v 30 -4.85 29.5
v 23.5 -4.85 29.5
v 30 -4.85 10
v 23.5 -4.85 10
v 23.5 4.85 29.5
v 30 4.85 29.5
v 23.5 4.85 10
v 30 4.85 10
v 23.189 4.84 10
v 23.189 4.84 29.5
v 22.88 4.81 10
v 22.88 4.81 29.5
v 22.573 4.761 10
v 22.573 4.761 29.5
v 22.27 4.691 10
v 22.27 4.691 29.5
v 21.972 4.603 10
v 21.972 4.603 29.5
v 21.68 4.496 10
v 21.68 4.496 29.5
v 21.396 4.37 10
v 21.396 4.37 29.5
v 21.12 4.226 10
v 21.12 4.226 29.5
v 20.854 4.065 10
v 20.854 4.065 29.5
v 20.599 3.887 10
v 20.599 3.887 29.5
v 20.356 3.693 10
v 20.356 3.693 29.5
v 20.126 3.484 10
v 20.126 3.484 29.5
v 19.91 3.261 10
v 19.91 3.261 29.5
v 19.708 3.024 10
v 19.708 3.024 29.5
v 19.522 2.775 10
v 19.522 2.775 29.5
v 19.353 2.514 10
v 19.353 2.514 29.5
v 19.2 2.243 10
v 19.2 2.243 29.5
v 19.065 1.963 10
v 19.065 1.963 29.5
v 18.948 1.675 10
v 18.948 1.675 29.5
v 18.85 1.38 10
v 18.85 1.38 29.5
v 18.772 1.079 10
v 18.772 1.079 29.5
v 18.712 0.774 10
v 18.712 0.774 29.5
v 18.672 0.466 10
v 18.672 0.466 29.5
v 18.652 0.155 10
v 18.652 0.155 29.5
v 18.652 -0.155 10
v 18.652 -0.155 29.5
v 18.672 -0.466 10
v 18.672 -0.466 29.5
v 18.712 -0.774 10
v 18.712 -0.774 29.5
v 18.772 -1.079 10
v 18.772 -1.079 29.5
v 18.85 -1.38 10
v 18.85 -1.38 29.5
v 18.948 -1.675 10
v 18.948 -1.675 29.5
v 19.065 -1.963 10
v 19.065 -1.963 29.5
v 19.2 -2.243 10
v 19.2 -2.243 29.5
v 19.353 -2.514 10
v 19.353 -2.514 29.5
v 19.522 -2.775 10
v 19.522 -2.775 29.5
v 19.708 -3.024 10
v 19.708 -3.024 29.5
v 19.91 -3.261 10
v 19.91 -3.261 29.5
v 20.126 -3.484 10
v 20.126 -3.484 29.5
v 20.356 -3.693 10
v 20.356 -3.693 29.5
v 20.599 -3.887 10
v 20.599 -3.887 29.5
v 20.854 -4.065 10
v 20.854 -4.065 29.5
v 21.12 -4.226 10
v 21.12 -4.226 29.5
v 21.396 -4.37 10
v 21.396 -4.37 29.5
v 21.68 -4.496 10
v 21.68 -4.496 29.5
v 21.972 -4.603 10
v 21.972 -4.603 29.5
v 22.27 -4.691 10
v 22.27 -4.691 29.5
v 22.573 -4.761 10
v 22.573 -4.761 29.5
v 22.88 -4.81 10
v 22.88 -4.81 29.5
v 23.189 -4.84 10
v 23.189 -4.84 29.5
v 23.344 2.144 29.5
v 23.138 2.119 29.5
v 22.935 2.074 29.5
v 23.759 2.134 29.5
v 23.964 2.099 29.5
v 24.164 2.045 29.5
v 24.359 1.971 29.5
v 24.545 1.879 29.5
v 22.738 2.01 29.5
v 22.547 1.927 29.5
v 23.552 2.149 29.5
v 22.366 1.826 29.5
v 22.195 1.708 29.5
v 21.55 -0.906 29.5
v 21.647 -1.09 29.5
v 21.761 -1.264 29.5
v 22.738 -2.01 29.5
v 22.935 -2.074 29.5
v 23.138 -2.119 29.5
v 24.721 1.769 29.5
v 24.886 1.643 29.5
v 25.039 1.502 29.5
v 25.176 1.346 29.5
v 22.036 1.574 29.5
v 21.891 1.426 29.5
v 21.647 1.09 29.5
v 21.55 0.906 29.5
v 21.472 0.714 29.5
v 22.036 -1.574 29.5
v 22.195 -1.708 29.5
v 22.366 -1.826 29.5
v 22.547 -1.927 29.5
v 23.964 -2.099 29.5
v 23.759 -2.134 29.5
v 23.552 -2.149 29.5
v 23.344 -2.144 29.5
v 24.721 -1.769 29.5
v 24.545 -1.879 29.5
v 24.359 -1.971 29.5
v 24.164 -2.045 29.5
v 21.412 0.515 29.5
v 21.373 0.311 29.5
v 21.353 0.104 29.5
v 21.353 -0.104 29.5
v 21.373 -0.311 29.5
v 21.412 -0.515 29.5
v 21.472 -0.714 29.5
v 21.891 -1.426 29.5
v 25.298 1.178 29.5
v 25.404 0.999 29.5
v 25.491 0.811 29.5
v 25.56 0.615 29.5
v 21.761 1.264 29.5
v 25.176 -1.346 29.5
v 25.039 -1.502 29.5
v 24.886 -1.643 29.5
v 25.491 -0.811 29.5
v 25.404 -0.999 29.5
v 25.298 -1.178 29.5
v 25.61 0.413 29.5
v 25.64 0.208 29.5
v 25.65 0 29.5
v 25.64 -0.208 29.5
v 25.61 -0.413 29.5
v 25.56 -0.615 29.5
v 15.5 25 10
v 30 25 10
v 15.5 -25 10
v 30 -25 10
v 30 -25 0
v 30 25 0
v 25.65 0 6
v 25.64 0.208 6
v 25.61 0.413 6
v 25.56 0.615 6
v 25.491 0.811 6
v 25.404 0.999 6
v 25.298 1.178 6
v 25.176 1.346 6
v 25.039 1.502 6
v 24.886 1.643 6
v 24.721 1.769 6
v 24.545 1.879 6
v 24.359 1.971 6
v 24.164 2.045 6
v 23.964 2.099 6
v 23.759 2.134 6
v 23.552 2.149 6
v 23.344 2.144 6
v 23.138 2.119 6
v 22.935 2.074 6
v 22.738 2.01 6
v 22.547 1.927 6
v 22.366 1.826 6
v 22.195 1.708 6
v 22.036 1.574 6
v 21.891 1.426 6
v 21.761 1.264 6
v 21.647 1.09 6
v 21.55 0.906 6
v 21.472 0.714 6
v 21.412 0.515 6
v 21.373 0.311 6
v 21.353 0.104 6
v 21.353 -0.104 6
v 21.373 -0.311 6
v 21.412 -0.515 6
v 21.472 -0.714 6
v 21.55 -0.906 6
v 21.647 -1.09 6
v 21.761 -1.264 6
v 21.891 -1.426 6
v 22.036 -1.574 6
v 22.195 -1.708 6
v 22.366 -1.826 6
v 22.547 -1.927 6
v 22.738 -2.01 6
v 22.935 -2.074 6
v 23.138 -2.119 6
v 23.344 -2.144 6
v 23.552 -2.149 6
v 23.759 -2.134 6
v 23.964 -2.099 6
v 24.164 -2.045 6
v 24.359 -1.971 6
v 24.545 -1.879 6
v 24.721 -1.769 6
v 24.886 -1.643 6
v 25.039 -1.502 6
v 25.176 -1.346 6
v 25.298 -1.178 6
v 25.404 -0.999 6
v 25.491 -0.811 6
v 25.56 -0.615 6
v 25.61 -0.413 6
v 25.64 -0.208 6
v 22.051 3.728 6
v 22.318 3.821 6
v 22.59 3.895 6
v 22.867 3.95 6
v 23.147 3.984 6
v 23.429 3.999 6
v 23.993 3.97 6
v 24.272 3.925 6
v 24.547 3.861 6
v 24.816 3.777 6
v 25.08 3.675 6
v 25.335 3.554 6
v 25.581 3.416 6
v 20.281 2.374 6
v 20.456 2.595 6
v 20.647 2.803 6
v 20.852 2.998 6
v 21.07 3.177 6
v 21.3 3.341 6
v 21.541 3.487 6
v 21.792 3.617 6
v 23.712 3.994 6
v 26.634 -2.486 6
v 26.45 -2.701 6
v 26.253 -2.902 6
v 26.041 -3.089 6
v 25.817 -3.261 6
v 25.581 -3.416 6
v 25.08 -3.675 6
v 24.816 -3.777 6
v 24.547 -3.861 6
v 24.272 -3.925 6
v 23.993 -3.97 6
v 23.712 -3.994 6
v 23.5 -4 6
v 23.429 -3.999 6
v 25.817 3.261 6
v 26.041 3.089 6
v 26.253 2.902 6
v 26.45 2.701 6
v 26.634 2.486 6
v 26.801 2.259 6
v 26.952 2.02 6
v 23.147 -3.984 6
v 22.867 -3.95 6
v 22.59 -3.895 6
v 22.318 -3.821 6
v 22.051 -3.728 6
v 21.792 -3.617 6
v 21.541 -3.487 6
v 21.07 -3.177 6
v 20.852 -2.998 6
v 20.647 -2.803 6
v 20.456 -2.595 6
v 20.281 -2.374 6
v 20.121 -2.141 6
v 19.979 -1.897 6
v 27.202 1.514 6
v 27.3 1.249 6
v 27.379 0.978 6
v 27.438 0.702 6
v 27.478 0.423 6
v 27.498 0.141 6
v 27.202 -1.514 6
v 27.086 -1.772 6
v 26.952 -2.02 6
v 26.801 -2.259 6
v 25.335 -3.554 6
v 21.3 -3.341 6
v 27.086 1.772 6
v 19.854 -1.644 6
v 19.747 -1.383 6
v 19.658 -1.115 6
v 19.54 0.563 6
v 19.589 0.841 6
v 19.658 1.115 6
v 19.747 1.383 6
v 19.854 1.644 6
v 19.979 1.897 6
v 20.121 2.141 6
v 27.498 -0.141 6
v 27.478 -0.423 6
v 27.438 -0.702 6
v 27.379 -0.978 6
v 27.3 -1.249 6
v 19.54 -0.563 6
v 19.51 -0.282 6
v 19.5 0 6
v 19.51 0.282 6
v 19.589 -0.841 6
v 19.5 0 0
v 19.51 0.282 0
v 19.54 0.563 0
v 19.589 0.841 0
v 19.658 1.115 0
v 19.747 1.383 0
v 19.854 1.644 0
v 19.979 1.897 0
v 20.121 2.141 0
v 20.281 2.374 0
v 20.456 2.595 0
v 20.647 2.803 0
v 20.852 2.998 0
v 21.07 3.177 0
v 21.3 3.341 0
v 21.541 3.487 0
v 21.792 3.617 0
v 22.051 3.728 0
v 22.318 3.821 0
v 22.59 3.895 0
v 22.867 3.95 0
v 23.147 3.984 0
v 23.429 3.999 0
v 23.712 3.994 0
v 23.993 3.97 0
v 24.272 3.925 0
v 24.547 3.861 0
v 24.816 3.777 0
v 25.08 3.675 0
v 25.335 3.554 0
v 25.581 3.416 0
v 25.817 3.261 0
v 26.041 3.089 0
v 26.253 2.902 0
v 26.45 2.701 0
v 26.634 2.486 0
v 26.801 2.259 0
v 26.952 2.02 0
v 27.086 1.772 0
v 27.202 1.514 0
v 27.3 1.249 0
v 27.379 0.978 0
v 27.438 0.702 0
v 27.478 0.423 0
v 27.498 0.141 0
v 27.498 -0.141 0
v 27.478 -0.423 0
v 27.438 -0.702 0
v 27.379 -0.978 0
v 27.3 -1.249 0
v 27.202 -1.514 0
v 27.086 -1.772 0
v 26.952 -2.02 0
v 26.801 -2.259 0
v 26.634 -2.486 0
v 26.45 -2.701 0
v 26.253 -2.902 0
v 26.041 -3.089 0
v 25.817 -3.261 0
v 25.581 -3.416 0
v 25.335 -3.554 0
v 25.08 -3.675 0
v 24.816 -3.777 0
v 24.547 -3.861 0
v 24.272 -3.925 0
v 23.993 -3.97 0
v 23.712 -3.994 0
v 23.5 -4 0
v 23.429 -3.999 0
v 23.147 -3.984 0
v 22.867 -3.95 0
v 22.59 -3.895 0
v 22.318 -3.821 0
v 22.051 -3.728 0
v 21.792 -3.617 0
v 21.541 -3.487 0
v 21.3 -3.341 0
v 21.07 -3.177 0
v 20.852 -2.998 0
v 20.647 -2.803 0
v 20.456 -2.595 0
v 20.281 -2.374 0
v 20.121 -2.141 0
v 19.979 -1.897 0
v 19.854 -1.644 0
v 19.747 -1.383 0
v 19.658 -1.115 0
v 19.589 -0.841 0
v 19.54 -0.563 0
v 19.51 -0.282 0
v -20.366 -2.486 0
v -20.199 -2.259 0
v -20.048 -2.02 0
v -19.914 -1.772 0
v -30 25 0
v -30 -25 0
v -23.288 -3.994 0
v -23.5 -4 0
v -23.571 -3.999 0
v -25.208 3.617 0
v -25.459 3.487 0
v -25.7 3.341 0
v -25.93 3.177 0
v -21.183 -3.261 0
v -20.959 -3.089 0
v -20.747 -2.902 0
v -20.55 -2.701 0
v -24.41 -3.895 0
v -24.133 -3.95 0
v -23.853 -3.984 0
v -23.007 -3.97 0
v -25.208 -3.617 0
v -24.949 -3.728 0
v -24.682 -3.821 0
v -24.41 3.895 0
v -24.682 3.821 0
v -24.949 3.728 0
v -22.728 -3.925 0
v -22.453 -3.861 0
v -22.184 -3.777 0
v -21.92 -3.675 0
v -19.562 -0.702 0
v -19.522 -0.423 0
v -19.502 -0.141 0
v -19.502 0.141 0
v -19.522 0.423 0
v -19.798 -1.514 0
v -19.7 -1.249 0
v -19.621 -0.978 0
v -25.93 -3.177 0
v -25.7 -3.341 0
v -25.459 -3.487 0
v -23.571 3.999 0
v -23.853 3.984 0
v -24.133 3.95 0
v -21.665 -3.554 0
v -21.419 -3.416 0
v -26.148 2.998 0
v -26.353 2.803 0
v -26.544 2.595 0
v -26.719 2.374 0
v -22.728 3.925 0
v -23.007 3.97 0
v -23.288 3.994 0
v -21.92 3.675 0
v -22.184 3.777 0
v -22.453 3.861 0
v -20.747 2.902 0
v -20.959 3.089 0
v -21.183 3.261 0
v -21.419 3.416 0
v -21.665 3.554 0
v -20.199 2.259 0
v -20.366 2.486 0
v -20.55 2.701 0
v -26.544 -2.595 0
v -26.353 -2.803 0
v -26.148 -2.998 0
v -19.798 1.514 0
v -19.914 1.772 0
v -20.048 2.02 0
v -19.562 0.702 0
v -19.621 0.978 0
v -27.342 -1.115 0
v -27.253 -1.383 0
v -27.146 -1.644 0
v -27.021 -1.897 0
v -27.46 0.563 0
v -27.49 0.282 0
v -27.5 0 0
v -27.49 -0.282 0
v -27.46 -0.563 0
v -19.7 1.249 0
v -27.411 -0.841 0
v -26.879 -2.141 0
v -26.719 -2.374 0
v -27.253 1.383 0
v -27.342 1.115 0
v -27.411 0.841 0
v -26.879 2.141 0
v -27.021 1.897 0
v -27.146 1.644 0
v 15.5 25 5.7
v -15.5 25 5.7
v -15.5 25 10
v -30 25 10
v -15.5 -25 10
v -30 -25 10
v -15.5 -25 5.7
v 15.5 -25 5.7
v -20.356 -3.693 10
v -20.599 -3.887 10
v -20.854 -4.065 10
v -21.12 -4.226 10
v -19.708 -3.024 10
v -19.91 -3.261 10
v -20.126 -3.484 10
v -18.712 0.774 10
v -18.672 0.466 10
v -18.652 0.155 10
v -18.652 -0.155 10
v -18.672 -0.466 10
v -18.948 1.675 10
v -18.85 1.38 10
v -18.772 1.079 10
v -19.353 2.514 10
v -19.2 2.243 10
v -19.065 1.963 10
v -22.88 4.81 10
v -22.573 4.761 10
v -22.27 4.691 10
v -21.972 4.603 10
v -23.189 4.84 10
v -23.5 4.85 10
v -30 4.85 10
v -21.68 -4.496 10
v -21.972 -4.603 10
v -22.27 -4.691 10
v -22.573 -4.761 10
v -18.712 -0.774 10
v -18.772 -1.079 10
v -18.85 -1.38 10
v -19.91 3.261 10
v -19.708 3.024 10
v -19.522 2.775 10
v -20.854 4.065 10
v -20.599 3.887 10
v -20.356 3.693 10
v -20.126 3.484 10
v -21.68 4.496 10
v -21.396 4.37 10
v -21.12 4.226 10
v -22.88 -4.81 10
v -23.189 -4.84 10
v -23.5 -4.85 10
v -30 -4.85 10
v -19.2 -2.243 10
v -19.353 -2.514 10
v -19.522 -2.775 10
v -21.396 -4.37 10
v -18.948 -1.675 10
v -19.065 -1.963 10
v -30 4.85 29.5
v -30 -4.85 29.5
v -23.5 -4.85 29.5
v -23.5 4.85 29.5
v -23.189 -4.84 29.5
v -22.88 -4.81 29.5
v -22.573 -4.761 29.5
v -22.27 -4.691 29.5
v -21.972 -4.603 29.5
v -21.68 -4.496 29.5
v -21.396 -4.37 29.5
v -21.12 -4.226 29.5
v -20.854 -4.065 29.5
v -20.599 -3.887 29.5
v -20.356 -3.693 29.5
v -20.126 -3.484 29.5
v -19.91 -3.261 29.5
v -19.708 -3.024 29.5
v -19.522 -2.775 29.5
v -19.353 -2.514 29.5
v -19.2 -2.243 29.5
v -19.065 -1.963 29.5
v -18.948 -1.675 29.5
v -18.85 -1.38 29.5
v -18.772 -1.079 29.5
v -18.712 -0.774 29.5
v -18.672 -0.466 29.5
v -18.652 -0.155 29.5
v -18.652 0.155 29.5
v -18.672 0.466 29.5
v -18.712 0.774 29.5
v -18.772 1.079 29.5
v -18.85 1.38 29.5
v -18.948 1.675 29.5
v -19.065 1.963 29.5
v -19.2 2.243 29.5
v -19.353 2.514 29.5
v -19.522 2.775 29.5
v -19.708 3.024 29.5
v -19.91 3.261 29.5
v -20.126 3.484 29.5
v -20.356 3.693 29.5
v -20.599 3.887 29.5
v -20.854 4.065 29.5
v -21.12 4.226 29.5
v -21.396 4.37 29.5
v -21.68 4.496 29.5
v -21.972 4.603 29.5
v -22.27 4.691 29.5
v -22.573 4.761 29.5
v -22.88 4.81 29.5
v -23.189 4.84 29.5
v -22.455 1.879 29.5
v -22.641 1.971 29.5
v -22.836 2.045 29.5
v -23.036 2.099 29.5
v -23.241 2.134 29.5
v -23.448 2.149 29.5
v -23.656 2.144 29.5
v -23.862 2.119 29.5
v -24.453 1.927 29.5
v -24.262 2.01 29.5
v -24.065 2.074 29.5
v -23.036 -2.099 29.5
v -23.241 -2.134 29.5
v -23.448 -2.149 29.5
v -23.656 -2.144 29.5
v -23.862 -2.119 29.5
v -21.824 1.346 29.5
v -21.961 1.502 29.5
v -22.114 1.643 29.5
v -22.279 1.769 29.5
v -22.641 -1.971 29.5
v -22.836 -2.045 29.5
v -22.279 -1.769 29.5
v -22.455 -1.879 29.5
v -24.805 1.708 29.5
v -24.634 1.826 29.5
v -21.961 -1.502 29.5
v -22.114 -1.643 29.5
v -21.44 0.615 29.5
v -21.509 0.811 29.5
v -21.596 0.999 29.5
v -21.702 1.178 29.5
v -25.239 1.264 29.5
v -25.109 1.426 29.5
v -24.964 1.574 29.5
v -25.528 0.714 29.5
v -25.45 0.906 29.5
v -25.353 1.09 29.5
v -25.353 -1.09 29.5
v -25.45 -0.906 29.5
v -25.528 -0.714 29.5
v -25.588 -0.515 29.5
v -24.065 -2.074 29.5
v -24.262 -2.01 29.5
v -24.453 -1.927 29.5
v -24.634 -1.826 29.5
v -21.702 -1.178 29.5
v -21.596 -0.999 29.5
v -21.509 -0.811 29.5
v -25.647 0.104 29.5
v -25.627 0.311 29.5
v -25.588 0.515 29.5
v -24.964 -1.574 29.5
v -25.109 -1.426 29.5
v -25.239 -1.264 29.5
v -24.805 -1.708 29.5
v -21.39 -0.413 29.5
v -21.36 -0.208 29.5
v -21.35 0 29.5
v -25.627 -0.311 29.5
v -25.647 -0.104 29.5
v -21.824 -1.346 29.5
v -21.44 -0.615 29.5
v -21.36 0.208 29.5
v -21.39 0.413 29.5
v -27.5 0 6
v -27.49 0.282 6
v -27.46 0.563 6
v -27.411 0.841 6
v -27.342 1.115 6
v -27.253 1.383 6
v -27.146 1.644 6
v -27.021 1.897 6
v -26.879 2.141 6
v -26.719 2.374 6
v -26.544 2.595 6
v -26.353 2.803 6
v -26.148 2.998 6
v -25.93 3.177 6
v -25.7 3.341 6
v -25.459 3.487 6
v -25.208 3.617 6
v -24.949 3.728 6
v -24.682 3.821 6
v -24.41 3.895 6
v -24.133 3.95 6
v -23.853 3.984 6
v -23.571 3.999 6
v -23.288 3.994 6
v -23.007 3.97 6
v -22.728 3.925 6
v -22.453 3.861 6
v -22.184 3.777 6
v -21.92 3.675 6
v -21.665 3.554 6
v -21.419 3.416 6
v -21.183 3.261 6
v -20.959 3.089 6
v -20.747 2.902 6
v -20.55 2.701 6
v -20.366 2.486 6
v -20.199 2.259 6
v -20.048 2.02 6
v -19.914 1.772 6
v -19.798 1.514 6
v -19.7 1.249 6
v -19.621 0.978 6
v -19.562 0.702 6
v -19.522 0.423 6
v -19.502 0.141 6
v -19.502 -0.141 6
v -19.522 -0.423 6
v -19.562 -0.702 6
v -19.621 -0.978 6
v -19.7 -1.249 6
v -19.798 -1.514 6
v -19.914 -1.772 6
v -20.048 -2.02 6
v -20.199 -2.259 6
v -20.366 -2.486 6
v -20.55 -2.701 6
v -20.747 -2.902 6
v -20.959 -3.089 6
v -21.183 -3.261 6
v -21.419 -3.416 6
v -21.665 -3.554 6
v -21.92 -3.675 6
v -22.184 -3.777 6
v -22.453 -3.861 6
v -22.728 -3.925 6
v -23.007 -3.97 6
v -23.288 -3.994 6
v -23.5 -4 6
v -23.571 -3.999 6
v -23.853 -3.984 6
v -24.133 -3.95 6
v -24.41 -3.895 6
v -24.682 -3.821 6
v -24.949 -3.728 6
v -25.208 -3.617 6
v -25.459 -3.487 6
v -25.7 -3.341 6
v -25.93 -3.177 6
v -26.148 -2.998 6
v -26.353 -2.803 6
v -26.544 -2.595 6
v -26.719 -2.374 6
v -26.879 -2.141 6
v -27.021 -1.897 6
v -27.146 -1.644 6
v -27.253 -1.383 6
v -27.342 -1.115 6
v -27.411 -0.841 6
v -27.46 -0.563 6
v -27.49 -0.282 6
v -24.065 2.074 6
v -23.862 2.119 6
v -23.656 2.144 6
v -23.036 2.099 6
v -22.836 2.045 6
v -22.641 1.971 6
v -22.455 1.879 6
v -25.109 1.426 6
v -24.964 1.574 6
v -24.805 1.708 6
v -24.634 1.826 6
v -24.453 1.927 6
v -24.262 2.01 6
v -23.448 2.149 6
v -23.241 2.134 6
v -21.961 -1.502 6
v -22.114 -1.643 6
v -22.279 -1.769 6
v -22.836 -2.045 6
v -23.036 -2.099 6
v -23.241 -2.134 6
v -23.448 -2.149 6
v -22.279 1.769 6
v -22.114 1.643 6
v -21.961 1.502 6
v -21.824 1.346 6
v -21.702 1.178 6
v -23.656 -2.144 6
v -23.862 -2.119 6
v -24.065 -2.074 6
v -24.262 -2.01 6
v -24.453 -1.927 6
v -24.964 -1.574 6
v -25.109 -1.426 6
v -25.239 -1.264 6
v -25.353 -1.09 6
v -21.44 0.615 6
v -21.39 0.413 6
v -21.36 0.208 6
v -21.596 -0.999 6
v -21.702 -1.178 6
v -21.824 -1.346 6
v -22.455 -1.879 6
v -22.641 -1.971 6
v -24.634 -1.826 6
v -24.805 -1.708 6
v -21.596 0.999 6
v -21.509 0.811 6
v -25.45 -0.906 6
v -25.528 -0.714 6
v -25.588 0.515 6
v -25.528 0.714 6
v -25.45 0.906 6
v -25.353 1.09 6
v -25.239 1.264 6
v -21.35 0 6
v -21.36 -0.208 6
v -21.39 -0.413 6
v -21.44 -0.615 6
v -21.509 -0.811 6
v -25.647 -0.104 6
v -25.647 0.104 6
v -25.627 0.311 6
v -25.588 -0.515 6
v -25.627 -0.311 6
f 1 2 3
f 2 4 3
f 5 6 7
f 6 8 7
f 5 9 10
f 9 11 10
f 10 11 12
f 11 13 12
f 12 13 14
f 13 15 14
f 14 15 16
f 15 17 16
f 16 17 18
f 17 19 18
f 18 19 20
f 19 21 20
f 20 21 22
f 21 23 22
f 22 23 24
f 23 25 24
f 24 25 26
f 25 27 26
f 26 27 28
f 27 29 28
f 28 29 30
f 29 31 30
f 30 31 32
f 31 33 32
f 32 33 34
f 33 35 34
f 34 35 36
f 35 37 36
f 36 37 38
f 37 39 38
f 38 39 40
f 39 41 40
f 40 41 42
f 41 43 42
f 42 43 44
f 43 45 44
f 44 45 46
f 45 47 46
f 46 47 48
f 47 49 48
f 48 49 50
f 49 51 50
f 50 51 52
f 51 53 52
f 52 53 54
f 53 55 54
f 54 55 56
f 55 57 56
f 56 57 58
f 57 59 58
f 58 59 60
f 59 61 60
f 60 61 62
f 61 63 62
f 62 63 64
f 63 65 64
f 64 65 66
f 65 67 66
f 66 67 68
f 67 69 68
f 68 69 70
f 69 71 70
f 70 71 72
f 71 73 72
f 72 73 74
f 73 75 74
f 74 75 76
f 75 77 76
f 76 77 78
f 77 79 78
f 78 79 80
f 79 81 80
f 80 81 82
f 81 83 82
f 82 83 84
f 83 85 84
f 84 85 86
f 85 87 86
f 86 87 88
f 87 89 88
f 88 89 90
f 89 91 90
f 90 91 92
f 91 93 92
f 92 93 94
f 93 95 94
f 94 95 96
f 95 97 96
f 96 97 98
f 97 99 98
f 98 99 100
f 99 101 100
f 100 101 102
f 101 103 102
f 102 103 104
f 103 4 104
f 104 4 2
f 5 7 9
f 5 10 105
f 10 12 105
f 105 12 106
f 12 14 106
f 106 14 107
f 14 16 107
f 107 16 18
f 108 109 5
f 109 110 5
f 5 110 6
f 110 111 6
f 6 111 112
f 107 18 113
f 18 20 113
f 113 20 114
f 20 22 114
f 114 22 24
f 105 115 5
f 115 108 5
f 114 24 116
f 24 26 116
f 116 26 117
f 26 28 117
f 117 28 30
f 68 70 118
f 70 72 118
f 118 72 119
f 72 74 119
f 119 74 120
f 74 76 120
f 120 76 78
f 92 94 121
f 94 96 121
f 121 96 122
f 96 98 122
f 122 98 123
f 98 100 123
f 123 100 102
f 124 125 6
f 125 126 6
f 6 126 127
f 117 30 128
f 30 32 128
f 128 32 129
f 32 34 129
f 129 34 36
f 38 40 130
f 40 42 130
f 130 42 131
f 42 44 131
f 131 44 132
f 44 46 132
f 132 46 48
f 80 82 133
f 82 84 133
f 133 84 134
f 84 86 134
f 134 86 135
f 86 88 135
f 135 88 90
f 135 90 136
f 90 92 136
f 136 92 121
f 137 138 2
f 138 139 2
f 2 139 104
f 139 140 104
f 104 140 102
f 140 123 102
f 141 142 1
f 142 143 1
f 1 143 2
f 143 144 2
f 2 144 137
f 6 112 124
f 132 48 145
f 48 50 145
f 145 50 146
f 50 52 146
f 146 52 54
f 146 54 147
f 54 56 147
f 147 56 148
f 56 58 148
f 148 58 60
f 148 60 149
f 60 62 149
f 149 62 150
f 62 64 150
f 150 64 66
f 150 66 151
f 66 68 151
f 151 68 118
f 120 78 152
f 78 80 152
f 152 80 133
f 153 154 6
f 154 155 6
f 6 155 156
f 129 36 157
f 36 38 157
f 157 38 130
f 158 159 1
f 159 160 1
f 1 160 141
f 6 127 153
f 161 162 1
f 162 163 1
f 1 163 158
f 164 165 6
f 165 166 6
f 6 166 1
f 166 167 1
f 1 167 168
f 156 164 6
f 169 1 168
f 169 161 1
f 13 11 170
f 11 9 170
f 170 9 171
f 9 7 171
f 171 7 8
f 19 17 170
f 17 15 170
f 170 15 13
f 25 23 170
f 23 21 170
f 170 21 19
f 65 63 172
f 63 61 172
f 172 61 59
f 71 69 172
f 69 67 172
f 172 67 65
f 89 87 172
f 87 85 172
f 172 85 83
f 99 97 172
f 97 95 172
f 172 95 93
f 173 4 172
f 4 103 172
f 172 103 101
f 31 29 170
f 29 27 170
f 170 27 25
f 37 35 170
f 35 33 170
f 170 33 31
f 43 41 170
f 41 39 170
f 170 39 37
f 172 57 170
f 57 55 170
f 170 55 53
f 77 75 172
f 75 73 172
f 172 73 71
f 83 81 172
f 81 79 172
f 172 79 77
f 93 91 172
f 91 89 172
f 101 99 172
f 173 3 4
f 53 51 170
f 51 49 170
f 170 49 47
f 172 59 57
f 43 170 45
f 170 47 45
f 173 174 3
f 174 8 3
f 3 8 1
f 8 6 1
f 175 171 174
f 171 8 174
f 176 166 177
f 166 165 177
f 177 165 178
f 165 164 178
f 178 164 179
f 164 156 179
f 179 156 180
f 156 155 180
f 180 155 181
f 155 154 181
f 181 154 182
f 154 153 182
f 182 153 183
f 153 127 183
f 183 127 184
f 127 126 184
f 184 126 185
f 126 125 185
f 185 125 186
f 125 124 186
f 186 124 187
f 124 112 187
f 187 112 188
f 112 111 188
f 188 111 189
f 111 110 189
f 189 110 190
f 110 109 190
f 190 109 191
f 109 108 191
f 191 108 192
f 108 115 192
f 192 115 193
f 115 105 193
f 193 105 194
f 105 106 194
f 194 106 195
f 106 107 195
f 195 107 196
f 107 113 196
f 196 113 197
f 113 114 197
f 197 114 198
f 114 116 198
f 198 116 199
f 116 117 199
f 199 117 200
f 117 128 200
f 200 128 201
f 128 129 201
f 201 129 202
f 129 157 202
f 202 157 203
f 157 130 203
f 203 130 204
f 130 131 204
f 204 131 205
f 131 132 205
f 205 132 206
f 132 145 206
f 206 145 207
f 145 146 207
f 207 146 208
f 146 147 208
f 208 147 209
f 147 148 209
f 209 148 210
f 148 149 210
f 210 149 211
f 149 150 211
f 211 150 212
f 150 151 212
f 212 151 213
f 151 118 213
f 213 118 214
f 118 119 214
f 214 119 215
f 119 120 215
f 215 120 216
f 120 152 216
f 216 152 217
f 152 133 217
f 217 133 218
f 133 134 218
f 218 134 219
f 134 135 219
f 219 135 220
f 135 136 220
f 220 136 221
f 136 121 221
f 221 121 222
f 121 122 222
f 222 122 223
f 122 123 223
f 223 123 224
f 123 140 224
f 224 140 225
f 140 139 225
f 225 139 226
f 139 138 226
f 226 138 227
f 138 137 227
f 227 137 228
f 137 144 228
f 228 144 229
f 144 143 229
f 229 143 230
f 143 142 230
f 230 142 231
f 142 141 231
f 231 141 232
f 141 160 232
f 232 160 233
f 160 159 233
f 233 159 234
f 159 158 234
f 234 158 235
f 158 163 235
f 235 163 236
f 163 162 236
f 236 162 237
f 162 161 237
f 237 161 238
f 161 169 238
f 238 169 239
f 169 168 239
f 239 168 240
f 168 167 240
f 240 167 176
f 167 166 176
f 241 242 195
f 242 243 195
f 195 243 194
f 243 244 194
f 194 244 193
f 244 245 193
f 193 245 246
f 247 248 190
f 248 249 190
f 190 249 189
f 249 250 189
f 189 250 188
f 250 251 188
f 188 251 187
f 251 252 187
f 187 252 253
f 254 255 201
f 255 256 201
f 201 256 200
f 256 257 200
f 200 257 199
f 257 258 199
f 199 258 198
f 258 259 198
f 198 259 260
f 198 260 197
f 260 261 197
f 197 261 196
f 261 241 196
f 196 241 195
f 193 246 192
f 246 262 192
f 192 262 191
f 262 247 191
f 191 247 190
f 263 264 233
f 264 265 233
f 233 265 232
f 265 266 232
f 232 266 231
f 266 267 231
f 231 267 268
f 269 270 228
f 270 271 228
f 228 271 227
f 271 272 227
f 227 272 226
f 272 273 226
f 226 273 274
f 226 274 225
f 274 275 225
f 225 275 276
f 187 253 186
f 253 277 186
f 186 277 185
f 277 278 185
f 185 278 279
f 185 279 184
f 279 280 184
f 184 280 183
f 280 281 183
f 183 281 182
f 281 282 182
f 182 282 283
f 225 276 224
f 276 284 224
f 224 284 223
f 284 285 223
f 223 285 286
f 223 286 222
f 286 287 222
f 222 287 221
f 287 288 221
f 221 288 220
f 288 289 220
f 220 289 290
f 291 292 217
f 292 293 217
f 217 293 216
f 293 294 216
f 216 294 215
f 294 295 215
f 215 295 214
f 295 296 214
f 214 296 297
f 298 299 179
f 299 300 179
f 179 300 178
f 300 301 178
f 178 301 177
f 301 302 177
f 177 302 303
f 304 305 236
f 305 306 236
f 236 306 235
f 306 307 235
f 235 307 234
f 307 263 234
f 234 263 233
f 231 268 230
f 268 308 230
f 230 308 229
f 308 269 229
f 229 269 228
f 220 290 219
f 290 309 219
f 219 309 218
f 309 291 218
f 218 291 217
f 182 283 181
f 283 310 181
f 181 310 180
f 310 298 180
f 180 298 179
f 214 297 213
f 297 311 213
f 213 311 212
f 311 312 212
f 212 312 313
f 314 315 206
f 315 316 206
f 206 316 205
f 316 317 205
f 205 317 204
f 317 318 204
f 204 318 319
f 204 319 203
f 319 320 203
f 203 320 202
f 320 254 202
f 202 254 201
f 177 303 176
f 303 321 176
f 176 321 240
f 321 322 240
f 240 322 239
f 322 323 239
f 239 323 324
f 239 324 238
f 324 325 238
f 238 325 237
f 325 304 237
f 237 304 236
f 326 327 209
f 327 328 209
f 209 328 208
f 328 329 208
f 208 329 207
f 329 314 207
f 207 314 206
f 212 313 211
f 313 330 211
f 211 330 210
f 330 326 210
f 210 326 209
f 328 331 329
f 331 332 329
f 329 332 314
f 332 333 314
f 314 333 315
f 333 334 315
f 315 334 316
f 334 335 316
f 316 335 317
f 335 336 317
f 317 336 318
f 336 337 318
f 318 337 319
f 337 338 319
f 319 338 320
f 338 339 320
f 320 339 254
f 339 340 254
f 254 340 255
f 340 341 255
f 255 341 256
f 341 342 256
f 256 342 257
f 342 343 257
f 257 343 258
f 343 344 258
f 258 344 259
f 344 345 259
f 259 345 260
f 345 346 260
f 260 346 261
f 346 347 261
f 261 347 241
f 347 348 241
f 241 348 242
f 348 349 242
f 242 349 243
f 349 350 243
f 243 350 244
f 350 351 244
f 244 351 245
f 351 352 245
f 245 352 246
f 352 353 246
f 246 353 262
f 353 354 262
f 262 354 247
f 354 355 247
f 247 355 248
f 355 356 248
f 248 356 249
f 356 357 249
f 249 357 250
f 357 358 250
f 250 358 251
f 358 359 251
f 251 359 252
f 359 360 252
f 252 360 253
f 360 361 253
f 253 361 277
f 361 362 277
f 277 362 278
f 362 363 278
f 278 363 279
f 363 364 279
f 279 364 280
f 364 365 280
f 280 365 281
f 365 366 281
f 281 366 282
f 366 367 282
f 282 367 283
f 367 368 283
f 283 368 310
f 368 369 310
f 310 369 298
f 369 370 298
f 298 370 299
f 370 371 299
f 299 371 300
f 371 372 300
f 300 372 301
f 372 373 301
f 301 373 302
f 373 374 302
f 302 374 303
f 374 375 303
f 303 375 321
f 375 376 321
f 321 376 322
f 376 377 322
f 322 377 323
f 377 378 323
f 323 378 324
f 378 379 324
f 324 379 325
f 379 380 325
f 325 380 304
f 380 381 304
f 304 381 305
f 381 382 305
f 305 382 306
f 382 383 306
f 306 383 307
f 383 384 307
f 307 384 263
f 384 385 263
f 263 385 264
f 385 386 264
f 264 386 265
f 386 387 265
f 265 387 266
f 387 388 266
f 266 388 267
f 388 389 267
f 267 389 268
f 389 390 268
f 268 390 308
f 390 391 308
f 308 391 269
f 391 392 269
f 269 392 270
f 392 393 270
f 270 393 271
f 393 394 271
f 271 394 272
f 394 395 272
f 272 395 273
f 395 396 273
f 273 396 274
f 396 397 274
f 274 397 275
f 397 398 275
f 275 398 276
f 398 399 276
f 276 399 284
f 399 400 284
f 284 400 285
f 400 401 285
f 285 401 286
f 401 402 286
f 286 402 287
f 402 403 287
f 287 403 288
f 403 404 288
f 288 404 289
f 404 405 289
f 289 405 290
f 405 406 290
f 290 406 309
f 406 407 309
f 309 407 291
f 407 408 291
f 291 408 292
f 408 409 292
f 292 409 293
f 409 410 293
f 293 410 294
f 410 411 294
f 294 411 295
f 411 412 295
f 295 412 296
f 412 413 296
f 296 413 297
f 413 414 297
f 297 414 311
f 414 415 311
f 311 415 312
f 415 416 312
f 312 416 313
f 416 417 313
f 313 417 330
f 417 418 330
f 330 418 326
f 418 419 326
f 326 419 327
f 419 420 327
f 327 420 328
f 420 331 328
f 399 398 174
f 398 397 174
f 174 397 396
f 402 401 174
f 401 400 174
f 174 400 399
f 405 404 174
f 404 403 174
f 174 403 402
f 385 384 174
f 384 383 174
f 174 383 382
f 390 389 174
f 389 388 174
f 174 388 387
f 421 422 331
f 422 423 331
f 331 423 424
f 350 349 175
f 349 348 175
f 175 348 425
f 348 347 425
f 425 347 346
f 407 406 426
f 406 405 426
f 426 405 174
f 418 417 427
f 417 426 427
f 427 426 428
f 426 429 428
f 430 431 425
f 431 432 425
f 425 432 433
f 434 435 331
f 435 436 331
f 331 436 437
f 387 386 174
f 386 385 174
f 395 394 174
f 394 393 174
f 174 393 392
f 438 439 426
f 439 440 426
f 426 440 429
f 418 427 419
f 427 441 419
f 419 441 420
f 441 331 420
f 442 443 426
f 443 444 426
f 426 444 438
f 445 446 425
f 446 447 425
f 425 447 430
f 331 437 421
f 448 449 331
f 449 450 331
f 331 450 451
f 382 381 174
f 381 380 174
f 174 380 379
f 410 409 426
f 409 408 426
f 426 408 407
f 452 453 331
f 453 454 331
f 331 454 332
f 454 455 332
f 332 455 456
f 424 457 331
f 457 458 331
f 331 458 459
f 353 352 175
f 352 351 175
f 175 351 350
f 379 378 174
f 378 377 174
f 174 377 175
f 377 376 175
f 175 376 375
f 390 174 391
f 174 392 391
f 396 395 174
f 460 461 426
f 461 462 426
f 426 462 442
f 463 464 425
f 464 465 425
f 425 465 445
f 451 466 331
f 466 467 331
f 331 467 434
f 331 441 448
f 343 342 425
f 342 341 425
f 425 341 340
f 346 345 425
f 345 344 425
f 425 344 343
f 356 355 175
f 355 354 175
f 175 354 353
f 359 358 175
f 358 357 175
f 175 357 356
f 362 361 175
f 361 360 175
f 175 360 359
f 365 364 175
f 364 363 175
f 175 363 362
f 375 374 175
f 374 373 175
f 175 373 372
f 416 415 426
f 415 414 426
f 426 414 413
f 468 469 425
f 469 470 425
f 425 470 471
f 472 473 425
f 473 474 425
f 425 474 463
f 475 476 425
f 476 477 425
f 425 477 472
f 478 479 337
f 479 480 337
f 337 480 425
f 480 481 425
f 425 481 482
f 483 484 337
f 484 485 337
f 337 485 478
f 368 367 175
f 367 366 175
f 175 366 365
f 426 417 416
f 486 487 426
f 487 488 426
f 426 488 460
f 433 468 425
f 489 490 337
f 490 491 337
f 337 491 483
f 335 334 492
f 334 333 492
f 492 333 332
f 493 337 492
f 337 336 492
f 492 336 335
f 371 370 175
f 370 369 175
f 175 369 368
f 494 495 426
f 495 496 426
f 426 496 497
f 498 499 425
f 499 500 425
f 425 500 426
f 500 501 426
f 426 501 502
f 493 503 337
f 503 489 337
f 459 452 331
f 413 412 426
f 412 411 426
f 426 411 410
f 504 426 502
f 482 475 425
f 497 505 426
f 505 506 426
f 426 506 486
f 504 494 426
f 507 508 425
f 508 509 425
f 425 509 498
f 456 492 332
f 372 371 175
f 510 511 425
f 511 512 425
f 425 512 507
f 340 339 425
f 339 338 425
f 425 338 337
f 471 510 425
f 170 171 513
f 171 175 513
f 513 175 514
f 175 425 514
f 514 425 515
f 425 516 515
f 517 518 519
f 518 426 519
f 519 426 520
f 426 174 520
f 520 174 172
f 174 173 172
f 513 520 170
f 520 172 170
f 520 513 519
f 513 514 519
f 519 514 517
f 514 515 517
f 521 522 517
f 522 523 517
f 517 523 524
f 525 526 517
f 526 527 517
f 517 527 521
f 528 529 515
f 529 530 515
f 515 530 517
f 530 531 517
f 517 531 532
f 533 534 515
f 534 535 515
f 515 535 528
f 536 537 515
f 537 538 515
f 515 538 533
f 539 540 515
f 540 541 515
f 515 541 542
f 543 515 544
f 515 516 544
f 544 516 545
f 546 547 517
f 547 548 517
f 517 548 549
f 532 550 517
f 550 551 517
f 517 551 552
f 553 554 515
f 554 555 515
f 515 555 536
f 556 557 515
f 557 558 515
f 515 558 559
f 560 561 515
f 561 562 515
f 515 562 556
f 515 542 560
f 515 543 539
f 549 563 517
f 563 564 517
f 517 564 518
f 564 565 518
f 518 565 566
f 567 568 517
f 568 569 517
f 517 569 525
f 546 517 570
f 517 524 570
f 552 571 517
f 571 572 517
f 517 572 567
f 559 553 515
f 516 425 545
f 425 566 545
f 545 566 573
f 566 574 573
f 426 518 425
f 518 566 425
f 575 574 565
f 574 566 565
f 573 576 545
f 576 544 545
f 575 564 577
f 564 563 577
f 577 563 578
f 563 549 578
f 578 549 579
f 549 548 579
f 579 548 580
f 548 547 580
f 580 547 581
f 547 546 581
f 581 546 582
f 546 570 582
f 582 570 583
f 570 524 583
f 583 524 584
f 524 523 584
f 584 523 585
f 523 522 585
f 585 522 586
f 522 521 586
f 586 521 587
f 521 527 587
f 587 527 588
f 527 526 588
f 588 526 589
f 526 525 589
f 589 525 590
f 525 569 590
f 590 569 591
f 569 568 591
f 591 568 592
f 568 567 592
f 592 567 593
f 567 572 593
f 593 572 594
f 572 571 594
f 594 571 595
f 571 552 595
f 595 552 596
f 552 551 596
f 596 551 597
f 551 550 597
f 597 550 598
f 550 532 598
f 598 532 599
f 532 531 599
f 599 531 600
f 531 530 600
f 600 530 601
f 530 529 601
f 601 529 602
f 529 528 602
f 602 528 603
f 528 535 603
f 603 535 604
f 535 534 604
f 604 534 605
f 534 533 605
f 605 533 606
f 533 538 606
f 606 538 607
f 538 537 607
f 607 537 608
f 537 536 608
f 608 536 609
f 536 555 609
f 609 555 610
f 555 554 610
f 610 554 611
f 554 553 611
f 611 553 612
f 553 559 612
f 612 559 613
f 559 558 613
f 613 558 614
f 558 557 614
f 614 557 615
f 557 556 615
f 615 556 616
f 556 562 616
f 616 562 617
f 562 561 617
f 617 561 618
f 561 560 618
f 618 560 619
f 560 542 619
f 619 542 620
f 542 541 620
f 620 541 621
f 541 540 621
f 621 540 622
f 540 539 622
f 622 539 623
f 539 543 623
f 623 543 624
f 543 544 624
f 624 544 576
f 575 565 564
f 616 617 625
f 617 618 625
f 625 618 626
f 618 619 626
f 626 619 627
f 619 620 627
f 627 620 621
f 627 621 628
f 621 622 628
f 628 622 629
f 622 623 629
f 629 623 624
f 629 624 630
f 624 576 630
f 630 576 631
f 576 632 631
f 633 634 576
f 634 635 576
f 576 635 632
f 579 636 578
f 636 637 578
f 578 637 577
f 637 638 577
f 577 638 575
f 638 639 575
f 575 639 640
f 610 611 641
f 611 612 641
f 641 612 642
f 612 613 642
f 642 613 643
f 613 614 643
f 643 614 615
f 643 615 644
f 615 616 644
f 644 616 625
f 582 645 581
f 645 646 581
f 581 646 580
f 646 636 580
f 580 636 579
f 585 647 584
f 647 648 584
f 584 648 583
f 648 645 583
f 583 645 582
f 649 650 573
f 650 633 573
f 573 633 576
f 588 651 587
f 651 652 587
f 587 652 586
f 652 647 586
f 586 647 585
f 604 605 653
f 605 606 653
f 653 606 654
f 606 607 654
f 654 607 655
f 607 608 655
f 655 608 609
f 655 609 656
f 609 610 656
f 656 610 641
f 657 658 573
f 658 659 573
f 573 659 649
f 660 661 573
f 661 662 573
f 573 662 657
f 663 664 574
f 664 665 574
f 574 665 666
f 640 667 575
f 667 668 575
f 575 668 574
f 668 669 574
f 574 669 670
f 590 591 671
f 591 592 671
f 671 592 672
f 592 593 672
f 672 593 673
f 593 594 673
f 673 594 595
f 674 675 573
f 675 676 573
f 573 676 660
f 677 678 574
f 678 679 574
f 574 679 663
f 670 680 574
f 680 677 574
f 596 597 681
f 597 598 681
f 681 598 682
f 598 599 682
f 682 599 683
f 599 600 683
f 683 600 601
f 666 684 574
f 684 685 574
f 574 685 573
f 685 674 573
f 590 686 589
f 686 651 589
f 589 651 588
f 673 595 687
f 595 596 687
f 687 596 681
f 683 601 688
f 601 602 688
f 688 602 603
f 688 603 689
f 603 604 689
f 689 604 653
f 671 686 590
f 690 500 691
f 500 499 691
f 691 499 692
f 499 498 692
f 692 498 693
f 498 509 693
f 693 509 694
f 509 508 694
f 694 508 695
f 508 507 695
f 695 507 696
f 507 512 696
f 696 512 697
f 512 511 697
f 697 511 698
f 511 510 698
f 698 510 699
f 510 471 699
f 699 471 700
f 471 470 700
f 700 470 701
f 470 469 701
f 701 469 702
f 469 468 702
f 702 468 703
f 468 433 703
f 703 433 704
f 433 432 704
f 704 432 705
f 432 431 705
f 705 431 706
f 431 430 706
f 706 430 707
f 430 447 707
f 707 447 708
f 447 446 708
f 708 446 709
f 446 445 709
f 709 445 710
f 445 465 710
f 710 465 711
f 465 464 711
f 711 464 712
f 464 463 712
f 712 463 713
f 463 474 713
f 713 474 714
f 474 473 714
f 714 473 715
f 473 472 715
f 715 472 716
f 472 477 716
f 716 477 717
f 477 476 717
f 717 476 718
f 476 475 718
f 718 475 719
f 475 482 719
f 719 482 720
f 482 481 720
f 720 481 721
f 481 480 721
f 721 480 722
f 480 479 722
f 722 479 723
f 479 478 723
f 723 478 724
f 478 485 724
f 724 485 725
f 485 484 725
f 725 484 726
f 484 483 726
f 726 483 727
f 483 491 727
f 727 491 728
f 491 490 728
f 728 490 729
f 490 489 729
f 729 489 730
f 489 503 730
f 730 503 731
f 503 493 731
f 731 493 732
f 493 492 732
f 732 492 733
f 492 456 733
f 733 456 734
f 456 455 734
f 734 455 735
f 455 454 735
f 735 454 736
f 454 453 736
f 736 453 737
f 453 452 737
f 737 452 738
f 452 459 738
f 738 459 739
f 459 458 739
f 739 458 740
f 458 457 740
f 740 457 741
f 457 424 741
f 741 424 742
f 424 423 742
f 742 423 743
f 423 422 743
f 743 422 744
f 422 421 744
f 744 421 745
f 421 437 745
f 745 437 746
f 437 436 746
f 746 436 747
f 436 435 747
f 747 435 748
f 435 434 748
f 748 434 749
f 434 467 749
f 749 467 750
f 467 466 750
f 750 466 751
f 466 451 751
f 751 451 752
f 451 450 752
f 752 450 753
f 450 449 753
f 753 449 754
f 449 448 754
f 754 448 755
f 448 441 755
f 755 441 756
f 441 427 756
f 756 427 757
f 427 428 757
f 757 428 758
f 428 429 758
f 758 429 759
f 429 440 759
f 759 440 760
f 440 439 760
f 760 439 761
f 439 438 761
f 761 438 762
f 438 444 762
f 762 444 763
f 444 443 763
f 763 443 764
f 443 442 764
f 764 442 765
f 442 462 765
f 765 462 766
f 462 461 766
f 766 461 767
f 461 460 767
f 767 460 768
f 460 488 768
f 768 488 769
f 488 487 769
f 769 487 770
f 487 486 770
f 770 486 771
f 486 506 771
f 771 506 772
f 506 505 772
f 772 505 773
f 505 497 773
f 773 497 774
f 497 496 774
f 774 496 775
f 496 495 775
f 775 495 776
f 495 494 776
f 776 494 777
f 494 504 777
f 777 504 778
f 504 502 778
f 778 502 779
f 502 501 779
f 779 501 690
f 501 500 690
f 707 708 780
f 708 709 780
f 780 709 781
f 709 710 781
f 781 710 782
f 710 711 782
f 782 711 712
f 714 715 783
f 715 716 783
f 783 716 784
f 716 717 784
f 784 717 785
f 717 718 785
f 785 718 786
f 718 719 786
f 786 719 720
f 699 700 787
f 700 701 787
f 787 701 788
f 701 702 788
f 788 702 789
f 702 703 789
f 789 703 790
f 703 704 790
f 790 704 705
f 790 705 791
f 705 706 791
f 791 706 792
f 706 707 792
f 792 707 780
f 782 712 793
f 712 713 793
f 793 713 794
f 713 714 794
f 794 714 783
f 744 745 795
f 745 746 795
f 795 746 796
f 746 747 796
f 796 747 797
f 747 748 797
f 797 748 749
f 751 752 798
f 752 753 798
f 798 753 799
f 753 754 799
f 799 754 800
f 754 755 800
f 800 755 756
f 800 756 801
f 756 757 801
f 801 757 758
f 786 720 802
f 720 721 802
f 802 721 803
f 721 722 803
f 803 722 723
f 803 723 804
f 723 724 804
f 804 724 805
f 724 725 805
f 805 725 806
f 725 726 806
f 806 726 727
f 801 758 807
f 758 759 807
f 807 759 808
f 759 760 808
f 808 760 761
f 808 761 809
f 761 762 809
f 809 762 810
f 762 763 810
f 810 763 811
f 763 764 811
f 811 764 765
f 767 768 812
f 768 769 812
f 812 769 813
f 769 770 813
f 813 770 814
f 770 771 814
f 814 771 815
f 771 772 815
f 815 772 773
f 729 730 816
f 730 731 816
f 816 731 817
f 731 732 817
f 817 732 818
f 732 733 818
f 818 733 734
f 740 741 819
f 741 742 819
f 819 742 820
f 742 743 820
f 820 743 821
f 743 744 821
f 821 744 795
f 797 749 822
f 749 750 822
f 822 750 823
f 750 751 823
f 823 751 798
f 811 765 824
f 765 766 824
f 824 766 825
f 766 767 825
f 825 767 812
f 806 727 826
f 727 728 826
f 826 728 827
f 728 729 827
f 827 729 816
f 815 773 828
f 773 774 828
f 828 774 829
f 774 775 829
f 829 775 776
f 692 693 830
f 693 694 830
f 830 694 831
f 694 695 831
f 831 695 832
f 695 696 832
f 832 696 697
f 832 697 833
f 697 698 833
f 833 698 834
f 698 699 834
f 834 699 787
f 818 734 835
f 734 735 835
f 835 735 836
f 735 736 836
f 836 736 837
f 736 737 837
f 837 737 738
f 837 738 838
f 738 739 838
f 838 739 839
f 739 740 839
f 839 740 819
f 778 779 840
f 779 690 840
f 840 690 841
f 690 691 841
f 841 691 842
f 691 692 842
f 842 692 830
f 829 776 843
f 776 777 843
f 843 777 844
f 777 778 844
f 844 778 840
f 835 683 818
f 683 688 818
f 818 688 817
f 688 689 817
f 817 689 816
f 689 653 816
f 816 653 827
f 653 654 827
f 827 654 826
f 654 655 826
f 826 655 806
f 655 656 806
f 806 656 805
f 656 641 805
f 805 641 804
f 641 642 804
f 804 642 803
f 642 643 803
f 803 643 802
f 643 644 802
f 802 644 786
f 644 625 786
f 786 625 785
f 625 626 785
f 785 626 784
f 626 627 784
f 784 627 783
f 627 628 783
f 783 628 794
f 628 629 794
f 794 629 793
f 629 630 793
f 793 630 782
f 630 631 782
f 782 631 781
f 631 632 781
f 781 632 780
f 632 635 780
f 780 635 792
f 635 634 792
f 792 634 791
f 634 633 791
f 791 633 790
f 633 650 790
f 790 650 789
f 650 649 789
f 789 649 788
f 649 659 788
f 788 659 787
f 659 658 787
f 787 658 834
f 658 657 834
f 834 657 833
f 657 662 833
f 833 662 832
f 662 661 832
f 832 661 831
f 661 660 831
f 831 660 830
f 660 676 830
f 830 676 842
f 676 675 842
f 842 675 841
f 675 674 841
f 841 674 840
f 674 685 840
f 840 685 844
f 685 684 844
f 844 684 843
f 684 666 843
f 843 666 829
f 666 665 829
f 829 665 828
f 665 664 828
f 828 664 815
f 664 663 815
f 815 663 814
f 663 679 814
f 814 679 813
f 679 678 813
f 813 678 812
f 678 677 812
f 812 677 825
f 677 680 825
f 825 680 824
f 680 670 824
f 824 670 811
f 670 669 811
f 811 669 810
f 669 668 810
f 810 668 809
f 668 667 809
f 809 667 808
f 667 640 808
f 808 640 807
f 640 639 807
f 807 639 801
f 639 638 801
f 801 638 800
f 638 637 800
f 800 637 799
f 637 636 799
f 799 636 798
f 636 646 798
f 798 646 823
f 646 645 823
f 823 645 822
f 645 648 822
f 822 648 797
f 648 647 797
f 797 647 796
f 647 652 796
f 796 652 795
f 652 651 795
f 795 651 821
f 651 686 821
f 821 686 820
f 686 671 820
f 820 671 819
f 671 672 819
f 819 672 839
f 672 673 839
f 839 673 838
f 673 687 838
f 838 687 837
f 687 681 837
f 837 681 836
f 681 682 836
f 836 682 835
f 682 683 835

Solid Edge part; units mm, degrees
sketch "Sketch1" plane through (0, 0, 0) normal (0, 0, 1) x (1, 0, 0)
  line L0 (30, -25) -> (-30, -25)
  line L1 (-30, -25) -> (-30, 25)
  line L2 (-30, 25) -> (30, 25)
  line L3 (30, 25) -> (30, -25)
  dimension "D1" = 60
  dimension "D2" = 50
extrude "Protrusion1" add sketch "Sketch1" along normal blind 10
sketch "Sketch2" plane through (0, 0, 10) normal (0, 0, 1) x (1, 0, 0)
  line L0 (-23.5, 4.85) -> (-30, 4.85)
  line L1 (-30, 4.85) -> (-30, -4.85)
  line L2 (-30, -4.85) -> (-23.5, -4.85)
  arc A0 (-23.5, -4.85) -> (-23.5, 4.85) centre (-23.5, 0) ccw
  line L3 (23.5, 4.85) -> (30, 4.85)
  line L4 (30, -4.85) -> (30, 4.85)
  line L5 (23.5, -4.85) -> (30, -4.85)
  arc A1 (23.5, -4.85) -> (23.5, 4.85) centre (23.5, 0) cw
extrude "ProtrusiónExtruida_2" add sketch "Sketch2" along normal blind 19.5
sketch "Sketch3" plane through (-24.325, 0, 29.5) normal (0, 0, 1) x (1, 0, 0)
  circle A0 centre (0.825, 0) radius 2.15
  circle A1 centre (47.825, 0) radius 2.15
extrude "VaciadoExtruido_1" cut sketch "Sketch3" against normal blind 72.3664
sketch "Sketch4" plane through (0, 0, 0) normal (0, 0, -1) x (0, -1, 0)
  circle A0 centre (0, -23.5) radius 4
  circle A1 centre (0, 23.5) radius 4
extrude "VaciadoExtruido_2" cut sketch "Sketch4" against normal blind 6
sketch "Sketch5" plane through (0, 0, 10) normal (0, 0, 1) x (-1, 0, 0)
  line L0 (15.5, -25) -> (-15.5, -25)
  line L1 (-15.5, -25) -> (-15.5, 25)
  line L2 (-15.5, 25) -> (15.5, 25)
  line L3 (15.5, 25) -> (15.5, -25)
  dimension "D1" = 31
extrude "VaciadoExtruido_3" cut sketch "Sketch5" against normal blind 4.3
